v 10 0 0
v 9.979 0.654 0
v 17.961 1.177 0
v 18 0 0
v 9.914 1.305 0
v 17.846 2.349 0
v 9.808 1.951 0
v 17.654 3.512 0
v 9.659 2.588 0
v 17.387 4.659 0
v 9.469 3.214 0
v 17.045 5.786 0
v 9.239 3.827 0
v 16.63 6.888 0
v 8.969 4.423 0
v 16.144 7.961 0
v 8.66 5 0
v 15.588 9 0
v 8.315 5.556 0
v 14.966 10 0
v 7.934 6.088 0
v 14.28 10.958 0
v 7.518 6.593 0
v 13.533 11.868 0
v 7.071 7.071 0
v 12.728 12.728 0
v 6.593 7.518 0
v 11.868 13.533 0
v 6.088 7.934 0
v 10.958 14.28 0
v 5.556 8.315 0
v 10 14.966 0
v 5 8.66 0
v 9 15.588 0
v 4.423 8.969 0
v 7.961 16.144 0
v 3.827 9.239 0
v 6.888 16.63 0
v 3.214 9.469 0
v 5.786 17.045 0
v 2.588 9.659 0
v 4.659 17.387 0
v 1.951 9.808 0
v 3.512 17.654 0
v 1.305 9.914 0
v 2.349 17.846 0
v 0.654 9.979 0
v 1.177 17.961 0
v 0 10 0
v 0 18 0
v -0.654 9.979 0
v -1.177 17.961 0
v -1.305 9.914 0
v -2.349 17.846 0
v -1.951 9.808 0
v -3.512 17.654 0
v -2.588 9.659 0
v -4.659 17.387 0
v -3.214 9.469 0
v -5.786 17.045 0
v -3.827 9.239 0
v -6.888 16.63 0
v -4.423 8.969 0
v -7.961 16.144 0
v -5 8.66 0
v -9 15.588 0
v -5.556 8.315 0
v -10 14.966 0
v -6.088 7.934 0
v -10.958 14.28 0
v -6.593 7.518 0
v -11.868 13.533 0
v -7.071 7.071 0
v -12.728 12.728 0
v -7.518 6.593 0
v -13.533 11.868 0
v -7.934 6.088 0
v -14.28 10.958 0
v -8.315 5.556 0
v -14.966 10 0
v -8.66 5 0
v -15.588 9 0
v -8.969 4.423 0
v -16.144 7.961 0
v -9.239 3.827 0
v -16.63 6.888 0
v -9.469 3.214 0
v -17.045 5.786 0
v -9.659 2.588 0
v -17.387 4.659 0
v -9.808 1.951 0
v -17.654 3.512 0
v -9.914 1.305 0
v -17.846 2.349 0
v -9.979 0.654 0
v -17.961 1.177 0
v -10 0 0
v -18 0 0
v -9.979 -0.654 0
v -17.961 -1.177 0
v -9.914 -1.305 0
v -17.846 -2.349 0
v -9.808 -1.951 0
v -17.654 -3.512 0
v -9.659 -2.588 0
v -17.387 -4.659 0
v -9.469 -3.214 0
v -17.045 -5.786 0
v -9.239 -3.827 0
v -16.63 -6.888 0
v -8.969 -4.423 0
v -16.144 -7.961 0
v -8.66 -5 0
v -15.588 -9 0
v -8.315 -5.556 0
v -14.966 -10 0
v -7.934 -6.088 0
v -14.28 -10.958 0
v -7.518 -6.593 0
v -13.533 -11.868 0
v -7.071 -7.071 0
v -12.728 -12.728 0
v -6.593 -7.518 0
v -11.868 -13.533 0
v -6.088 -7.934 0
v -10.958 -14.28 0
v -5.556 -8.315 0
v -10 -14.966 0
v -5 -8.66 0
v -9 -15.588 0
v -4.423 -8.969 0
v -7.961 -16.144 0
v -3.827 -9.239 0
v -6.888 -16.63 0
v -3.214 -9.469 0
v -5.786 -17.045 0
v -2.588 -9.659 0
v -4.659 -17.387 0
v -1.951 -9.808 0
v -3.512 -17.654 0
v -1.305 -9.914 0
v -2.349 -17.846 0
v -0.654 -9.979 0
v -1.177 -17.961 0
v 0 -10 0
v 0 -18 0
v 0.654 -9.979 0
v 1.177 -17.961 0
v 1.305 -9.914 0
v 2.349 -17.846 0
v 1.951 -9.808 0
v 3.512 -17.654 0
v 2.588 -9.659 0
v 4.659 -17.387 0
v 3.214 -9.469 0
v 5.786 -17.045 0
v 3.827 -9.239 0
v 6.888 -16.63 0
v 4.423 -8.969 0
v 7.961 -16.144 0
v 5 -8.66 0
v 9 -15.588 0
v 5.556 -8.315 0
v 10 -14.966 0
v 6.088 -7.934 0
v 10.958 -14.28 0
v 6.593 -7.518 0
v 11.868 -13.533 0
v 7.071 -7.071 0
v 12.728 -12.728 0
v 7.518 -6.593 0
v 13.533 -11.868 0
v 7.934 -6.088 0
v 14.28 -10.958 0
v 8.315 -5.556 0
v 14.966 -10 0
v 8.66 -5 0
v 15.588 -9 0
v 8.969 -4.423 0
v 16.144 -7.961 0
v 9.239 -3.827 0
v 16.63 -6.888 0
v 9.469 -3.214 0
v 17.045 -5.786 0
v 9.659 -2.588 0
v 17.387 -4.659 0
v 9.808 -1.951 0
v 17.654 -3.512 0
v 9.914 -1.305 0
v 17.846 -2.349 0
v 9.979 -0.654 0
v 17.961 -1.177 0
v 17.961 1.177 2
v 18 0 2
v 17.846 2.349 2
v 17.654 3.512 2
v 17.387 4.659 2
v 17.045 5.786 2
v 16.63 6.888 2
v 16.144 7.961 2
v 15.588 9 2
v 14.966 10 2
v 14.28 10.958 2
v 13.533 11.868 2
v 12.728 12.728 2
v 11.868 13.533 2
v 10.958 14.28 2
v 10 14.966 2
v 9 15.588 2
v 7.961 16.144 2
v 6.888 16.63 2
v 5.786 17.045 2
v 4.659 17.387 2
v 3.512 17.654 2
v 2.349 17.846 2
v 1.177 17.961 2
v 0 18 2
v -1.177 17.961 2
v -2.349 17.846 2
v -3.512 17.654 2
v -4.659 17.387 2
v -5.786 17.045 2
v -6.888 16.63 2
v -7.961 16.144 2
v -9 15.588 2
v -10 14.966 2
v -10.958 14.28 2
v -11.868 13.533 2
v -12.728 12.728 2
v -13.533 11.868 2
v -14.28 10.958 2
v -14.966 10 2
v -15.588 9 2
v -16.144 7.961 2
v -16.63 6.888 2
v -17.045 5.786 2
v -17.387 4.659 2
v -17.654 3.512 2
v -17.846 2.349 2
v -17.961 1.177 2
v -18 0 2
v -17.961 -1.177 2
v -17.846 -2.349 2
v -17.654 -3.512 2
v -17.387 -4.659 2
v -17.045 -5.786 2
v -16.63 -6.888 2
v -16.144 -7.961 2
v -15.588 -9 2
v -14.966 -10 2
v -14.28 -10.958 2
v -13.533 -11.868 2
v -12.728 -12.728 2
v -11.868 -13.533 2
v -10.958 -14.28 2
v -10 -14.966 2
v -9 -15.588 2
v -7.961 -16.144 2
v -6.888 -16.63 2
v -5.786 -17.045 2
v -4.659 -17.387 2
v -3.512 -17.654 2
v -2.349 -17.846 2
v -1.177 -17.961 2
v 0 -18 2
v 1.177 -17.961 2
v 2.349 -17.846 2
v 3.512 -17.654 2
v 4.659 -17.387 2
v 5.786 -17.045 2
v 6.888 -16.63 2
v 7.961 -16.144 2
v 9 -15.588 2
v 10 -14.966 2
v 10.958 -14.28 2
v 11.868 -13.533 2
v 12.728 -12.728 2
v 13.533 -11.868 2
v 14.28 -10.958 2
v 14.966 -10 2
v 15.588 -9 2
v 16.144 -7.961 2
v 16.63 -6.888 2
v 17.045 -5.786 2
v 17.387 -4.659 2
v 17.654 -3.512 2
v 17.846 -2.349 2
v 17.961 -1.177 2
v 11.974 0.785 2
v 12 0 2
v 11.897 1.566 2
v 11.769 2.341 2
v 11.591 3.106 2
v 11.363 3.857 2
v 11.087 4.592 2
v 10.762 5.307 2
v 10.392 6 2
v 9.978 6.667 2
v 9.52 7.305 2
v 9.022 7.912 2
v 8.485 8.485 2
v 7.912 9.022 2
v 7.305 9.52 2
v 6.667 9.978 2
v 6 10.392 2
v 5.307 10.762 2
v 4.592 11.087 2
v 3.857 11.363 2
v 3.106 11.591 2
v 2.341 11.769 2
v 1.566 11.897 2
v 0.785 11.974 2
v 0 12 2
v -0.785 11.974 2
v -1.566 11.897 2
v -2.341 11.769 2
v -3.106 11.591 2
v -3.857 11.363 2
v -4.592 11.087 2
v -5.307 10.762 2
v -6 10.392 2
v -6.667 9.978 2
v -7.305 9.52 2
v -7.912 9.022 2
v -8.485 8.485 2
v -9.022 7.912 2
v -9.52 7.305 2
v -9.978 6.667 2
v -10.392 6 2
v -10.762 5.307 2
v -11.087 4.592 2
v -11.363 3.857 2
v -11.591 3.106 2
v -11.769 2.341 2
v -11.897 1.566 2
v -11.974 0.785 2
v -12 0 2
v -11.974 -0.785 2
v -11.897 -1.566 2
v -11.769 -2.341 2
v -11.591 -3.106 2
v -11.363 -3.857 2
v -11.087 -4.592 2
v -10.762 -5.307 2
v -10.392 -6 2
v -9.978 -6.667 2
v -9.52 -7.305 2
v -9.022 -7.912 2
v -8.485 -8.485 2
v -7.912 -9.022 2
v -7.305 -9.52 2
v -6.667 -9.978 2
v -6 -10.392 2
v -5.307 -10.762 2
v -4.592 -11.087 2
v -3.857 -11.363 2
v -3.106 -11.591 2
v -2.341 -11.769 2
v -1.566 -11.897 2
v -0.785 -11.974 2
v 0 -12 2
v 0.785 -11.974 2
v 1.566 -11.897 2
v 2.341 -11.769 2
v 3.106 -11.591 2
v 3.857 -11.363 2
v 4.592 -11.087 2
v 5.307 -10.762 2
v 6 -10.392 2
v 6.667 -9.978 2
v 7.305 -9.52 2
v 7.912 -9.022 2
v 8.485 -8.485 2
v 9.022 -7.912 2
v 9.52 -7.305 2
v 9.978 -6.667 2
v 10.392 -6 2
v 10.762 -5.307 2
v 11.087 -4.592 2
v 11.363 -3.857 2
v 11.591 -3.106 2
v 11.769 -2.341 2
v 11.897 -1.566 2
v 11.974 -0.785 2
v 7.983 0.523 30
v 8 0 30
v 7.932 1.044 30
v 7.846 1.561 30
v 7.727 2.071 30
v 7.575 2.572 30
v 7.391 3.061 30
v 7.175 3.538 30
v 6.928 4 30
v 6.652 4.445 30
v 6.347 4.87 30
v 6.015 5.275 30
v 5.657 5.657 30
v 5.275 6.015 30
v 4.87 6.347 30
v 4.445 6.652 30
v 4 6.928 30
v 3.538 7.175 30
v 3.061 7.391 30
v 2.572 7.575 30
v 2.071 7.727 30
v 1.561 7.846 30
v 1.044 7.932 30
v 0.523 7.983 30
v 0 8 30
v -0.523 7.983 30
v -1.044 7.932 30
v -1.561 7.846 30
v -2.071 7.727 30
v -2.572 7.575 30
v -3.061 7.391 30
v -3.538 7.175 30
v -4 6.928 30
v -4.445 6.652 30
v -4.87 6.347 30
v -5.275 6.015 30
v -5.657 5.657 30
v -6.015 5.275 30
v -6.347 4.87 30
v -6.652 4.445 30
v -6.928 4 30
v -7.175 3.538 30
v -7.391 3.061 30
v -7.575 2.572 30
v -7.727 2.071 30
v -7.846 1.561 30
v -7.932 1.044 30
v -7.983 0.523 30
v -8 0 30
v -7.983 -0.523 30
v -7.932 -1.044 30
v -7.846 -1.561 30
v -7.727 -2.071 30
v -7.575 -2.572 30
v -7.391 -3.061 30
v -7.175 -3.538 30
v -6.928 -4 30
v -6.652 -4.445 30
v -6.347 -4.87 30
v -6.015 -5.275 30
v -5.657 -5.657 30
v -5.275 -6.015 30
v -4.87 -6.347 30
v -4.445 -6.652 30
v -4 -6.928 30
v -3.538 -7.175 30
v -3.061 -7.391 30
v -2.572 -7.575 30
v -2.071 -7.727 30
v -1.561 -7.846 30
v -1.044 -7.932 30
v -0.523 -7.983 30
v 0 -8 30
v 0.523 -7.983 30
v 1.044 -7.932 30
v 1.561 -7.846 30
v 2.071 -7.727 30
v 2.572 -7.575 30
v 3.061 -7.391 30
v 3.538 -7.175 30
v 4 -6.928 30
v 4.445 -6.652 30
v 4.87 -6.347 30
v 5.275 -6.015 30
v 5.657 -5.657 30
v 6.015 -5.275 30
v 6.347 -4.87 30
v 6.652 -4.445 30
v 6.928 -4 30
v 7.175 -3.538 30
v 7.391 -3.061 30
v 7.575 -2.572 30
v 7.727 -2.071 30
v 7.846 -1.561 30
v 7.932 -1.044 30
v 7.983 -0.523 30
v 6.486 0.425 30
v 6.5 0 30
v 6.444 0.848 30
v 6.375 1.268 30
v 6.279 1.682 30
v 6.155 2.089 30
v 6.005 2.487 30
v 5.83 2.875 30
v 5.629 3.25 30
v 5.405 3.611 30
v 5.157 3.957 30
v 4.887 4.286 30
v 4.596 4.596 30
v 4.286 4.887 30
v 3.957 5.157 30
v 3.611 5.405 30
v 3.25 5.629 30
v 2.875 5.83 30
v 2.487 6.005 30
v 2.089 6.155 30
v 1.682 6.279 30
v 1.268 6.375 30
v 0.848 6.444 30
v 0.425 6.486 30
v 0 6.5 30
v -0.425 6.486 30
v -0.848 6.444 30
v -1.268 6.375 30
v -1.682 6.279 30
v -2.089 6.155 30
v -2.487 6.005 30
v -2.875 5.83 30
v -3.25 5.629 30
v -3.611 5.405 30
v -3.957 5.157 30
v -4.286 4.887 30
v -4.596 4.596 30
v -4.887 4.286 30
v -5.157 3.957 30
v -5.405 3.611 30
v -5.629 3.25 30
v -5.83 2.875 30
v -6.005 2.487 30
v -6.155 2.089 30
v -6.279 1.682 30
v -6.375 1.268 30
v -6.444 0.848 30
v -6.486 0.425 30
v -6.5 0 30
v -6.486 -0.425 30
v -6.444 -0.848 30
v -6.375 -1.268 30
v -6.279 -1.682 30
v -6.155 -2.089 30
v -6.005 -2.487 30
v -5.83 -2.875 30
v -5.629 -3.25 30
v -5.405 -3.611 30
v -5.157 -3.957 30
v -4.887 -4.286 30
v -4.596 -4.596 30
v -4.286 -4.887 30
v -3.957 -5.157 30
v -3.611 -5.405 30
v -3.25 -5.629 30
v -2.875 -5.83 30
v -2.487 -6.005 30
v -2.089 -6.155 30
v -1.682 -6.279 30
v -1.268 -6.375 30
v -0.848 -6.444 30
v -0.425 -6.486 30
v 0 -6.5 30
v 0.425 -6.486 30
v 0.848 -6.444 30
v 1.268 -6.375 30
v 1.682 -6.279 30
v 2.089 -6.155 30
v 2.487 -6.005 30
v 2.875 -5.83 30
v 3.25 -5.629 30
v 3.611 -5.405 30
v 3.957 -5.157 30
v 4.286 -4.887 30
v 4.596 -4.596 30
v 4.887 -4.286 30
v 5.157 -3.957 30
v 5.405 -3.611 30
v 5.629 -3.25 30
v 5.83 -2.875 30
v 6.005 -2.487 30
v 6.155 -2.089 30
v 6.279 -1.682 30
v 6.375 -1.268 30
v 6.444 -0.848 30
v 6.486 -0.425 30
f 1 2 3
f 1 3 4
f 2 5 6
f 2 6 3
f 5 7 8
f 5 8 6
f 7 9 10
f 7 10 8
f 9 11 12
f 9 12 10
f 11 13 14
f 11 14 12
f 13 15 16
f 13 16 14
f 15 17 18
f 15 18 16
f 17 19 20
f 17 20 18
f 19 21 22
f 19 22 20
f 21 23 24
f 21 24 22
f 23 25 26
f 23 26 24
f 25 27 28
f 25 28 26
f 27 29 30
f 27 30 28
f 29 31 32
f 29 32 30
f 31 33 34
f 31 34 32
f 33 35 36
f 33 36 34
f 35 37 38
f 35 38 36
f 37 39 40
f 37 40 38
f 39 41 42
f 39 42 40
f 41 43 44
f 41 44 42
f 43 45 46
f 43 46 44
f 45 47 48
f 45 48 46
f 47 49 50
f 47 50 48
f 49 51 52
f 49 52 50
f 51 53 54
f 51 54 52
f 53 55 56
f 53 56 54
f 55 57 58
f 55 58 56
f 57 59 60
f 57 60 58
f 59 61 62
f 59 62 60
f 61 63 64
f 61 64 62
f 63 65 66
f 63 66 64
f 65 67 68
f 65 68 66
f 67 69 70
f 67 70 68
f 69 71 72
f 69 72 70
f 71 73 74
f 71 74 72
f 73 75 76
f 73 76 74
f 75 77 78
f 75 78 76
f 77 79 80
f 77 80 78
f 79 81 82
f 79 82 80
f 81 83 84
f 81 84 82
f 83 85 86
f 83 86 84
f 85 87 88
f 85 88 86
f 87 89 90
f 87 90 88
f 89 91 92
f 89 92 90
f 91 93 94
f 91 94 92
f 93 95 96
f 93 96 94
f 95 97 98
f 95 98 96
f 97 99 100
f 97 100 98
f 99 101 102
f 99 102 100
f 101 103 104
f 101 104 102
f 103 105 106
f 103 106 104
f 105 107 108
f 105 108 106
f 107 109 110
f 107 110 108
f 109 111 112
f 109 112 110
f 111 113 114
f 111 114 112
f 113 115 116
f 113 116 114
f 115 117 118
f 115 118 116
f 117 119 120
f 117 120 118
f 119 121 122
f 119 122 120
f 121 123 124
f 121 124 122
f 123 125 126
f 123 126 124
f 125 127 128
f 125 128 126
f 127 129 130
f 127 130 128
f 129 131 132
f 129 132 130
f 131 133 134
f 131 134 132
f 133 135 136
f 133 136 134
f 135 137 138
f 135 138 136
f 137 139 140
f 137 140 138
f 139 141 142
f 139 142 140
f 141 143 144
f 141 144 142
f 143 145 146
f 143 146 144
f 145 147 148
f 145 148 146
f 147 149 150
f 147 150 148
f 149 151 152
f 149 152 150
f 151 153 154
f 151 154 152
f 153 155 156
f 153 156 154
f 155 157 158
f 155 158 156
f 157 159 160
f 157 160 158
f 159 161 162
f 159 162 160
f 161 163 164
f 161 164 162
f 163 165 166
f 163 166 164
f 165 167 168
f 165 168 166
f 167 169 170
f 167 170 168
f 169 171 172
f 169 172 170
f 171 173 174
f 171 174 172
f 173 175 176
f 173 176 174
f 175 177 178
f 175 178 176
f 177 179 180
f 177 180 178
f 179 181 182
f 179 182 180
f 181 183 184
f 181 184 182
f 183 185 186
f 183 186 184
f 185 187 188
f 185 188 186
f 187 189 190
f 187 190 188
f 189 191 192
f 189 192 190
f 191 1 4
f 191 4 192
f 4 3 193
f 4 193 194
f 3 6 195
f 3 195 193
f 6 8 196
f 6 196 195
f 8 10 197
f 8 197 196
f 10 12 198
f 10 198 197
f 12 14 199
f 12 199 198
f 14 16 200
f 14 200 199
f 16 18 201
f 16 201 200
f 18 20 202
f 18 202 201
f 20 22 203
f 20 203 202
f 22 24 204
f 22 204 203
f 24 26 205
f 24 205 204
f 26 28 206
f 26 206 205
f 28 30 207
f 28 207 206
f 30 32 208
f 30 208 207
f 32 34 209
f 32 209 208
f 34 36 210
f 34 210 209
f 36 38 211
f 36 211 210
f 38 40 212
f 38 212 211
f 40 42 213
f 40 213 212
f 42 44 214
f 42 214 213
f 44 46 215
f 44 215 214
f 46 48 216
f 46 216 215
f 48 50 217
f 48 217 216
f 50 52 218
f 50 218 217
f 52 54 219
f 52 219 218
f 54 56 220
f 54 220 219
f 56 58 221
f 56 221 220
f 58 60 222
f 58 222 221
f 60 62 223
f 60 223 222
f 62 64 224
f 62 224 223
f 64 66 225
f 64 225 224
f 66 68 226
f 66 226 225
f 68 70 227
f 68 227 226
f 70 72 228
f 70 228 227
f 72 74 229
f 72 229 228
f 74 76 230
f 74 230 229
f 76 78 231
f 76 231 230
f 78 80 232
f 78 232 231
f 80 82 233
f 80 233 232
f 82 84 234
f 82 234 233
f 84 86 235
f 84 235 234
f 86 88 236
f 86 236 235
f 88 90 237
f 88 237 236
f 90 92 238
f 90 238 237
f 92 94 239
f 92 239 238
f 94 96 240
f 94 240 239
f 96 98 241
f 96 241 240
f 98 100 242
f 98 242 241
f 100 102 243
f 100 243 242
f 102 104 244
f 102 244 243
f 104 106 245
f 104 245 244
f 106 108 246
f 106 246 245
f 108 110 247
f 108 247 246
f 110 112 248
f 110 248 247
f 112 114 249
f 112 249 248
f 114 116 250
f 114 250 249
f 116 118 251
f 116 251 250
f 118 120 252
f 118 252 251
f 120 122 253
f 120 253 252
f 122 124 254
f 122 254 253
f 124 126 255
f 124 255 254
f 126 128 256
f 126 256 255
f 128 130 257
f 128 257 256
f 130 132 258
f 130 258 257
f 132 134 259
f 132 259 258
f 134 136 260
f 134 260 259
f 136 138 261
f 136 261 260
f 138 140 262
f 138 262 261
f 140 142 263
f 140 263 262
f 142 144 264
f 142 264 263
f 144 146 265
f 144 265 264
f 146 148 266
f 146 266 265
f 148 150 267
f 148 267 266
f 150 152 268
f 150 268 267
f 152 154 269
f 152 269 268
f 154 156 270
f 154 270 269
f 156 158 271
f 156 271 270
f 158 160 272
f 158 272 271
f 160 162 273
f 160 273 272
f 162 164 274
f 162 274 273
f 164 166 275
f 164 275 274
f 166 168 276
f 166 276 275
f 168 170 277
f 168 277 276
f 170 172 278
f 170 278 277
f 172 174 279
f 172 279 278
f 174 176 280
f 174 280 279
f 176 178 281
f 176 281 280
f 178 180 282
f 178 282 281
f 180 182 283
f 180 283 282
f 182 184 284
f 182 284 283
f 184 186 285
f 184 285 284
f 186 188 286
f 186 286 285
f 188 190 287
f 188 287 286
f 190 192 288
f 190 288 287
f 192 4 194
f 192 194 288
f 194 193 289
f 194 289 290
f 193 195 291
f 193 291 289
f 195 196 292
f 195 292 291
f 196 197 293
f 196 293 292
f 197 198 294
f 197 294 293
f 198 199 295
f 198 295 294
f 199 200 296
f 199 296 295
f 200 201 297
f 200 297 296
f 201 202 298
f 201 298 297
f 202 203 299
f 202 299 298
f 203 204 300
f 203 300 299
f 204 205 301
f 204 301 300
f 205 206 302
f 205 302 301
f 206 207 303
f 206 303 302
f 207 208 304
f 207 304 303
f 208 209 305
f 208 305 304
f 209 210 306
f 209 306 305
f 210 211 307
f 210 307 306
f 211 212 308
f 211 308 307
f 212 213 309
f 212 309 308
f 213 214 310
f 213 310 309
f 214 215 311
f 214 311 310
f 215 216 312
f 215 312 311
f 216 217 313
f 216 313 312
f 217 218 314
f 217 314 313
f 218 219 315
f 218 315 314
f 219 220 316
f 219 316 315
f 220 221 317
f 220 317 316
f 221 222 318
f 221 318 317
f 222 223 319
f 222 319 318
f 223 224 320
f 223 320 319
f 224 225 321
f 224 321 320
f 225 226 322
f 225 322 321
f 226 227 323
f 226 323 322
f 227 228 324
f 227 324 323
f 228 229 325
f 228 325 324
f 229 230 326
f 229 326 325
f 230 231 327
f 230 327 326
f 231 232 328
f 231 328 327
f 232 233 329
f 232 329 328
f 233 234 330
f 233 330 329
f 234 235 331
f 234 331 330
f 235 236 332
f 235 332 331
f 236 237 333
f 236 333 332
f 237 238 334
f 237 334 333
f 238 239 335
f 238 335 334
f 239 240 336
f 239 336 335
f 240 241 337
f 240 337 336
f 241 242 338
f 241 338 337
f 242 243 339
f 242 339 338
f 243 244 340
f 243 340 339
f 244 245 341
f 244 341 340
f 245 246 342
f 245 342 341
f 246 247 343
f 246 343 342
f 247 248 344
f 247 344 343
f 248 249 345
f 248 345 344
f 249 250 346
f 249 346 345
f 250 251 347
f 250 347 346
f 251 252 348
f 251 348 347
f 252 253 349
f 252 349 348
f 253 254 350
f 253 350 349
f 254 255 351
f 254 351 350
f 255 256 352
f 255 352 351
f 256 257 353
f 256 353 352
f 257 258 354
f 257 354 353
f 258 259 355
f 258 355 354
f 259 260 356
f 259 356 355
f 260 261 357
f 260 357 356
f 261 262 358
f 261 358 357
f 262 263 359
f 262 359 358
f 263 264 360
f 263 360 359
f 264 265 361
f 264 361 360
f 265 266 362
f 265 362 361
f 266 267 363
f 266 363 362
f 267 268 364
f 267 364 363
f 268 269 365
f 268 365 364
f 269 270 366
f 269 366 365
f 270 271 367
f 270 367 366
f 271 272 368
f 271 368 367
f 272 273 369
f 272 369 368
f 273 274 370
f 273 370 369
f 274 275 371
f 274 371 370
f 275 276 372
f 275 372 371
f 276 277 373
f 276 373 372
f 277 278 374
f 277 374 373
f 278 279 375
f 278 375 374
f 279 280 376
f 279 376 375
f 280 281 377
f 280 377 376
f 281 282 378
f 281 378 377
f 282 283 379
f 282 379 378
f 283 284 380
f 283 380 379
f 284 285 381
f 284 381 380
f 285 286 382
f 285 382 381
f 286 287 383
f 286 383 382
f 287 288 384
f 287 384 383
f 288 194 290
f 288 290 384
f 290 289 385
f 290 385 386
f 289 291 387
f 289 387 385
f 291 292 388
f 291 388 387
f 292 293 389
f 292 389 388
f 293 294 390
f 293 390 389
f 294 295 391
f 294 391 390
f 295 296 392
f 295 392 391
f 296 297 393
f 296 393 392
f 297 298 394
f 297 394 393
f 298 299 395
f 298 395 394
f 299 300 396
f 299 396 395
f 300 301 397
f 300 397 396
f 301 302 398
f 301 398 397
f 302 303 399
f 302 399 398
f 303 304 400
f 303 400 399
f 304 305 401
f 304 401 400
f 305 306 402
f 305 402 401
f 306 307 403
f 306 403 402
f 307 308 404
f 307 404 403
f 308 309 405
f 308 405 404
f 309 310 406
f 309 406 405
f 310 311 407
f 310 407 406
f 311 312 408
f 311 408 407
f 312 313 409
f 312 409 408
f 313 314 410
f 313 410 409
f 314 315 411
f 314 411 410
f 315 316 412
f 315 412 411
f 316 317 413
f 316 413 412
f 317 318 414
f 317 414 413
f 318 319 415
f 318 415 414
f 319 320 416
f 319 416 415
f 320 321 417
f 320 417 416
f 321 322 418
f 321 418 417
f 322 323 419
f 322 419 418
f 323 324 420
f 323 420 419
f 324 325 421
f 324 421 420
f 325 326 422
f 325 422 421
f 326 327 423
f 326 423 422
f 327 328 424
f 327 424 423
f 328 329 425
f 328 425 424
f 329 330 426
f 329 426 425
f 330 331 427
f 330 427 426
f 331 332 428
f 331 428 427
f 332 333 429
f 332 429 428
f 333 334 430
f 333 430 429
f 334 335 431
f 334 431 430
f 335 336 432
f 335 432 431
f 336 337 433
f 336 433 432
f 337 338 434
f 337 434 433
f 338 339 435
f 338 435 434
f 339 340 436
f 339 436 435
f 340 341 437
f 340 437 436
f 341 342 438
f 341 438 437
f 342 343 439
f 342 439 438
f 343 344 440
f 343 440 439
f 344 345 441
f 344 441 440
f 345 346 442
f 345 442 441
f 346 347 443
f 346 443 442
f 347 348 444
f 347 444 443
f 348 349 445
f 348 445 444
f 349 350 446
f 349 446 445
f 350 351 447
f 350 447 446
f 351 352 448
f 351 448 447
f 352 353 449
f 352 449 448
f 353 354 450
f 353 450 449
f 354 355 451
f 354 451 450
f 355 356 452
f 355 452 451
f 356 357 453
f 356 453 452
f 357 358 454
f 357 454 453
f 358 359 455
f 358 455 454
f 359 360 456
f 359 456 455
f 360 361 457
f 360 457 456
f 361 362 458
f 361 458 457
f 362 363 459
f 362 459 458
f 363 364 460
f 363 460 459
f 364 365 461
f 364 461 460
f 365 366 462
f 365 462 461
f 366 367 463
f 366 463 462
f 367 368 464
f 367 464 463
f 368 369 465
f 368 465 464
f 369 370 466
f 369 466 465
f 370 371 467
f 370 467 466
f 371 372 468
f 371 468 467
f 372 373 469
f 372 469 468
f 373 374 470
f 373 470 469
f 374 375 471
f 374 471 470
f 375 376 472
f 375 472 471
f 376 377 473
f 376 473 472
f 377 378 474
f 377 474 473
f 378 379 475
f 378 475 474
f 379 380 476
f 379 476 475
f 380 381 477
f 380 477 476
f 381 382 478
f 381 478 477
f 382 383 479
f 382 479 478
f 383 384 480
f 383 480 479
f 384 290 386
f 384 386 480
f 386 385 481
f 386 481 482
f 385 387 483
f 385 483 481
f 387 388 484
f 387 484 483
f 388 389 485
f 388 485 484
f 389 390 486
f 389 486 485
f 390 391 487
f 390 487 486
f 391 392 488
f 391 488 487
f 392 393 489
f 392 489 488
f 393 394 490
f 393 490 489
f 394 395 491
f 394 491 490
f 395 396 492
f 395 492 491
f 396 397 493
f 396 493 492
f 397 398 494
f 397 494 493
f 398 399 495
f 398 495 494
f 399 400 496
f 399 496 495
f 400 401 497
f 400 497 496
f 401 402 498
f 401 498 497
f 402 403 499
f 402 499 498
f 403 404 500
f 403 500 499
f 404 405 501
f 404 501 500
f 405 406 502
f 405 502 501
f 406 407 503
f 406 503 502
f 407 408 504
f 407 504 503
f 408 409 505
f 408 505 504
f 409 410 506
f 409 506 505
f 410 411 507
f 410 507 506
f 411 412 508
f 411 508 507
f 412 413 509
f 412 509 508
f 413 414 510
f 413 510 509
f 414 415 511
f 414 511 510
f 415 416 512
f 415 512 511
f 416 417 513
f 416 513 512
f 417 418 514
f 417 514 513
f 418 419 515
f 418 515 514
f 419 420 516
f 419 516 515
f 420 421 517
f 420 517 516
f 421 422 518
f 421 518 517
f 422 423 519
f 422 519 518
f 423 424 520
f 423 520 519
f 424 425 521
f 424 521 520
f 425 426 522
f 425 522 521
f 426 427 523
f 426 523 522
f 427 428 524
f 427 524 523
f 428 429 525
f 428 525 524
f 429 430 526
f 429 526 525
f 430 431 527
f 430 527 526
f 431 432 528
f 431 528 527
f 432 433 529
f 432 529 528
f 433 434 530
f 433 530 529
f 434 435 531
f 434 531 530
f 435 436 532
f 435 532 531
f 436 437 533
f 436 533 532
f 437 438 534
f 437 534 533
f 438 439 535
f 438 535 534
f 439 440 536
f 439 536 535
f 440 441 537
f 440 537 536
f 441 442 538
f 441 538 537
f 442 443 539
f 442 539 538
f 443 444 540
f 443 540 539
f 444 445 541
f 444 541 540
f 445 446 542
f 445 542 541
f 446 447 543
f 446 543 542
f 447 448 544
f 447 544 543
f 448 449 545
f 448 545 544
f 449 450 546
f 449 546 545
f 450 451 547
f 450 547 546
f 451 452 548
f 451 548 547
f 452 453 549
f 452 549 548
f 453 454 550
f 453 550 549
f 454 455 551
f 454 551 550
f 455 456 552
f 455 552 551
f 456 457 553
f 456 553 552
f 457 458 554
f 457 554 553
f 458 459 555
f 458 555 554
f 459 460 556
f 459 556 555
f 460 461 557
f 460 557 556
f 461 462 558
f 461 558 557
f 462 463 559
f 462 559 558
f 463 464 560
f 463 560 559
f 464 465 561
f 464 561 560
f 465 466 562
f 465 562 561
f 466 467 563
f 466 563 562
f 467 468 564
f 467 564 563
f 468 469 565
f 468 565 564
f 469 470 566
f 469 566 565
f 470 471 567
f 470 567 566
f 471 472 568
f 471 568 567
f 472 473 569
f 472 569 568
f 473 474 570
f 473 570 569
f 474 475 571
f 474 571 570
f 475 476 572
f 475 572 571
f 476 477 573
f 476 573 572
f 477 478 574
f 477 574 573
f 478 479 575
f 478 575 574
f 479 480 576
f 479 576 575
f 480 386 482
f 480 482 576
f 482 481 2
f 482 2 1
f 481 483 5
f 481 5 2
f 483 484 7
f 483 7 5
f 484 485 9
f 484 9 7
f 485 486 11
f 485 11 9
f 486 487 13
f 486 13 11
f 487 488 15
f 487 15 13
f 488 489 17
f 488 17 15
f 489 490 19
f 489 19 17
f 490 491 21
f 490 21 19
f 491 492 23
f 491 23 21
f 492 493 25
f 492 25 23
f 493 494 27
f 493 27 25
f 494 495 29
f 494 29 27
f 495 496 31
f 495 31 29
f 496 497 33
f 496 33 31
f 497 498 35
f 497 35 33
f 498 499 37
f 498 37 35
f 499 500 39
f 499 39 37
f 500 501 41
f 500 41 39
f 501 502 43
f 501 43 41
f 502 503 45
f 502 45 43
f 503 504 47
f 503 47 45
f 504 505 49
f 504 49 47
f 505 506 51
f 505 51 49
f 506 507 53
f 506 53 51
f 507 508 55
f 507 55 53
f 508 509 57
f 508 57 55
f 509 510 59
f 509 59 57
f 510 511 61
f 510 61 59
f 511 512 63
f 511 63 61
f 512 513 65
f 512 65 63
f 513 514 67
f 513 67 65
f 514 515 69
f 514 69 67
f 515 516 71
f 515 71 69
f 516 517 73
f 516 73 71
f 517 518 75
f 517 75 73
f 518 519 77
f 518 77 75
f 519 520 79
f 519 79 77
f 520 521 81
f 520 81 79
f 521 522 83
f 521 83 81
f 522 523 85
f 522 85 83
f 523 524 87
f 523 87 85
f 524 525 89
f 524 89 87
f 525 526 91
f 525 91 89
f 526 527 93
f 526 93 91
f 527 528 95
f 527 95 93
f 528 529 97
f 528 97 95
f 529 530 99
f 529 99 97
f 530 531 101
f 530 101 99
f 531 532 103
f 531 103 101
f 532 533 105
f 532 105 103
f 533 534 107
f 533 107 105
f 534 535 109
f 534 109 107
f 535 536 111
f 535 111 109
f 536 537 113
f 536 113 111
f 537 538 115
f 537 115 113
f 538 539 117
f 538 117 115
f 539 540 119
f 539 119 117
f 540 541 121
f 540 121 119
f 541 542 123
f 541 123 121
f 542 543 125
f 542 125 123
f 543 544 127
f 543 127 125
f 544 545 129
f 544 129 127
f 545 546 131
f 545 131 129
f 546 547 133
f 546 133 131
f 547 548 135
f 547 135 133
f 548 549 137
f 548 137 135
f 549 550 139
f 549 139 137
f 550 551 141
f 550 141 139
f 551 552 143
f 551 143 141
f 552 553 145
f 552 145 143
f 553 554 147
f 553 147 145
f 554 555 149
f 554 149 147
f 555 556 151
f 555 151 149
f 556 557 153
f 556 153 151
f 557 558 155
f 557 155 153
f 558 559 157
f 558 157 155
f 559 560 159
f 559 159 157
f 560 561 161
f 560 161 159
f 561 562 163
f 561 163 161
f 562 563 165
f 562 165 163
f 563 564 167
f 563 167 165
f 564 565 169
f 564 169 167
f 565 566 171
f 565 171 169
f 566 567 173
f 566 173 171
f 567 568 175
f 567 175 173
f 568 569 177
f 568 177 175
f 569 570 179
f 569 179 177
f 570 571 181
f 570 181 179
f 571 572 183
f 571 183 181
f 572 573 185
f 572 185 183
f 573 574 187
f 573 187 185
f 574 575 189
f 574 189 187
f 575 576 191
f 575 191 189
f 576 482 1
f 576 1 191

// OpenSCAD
// Original MechIntel educational model. CC0-1.0. Units: mm.
// Not a standardized or load-rated component.
$fn=96;
// Section points: [radius, height], mm. Edit to change the profile.
section=[[10, 0], [18, 0], [18, 2], [12, 2], [8, 30], [6.5, 30]];
rotate_extrude($fn=96) polygon(points=section);
